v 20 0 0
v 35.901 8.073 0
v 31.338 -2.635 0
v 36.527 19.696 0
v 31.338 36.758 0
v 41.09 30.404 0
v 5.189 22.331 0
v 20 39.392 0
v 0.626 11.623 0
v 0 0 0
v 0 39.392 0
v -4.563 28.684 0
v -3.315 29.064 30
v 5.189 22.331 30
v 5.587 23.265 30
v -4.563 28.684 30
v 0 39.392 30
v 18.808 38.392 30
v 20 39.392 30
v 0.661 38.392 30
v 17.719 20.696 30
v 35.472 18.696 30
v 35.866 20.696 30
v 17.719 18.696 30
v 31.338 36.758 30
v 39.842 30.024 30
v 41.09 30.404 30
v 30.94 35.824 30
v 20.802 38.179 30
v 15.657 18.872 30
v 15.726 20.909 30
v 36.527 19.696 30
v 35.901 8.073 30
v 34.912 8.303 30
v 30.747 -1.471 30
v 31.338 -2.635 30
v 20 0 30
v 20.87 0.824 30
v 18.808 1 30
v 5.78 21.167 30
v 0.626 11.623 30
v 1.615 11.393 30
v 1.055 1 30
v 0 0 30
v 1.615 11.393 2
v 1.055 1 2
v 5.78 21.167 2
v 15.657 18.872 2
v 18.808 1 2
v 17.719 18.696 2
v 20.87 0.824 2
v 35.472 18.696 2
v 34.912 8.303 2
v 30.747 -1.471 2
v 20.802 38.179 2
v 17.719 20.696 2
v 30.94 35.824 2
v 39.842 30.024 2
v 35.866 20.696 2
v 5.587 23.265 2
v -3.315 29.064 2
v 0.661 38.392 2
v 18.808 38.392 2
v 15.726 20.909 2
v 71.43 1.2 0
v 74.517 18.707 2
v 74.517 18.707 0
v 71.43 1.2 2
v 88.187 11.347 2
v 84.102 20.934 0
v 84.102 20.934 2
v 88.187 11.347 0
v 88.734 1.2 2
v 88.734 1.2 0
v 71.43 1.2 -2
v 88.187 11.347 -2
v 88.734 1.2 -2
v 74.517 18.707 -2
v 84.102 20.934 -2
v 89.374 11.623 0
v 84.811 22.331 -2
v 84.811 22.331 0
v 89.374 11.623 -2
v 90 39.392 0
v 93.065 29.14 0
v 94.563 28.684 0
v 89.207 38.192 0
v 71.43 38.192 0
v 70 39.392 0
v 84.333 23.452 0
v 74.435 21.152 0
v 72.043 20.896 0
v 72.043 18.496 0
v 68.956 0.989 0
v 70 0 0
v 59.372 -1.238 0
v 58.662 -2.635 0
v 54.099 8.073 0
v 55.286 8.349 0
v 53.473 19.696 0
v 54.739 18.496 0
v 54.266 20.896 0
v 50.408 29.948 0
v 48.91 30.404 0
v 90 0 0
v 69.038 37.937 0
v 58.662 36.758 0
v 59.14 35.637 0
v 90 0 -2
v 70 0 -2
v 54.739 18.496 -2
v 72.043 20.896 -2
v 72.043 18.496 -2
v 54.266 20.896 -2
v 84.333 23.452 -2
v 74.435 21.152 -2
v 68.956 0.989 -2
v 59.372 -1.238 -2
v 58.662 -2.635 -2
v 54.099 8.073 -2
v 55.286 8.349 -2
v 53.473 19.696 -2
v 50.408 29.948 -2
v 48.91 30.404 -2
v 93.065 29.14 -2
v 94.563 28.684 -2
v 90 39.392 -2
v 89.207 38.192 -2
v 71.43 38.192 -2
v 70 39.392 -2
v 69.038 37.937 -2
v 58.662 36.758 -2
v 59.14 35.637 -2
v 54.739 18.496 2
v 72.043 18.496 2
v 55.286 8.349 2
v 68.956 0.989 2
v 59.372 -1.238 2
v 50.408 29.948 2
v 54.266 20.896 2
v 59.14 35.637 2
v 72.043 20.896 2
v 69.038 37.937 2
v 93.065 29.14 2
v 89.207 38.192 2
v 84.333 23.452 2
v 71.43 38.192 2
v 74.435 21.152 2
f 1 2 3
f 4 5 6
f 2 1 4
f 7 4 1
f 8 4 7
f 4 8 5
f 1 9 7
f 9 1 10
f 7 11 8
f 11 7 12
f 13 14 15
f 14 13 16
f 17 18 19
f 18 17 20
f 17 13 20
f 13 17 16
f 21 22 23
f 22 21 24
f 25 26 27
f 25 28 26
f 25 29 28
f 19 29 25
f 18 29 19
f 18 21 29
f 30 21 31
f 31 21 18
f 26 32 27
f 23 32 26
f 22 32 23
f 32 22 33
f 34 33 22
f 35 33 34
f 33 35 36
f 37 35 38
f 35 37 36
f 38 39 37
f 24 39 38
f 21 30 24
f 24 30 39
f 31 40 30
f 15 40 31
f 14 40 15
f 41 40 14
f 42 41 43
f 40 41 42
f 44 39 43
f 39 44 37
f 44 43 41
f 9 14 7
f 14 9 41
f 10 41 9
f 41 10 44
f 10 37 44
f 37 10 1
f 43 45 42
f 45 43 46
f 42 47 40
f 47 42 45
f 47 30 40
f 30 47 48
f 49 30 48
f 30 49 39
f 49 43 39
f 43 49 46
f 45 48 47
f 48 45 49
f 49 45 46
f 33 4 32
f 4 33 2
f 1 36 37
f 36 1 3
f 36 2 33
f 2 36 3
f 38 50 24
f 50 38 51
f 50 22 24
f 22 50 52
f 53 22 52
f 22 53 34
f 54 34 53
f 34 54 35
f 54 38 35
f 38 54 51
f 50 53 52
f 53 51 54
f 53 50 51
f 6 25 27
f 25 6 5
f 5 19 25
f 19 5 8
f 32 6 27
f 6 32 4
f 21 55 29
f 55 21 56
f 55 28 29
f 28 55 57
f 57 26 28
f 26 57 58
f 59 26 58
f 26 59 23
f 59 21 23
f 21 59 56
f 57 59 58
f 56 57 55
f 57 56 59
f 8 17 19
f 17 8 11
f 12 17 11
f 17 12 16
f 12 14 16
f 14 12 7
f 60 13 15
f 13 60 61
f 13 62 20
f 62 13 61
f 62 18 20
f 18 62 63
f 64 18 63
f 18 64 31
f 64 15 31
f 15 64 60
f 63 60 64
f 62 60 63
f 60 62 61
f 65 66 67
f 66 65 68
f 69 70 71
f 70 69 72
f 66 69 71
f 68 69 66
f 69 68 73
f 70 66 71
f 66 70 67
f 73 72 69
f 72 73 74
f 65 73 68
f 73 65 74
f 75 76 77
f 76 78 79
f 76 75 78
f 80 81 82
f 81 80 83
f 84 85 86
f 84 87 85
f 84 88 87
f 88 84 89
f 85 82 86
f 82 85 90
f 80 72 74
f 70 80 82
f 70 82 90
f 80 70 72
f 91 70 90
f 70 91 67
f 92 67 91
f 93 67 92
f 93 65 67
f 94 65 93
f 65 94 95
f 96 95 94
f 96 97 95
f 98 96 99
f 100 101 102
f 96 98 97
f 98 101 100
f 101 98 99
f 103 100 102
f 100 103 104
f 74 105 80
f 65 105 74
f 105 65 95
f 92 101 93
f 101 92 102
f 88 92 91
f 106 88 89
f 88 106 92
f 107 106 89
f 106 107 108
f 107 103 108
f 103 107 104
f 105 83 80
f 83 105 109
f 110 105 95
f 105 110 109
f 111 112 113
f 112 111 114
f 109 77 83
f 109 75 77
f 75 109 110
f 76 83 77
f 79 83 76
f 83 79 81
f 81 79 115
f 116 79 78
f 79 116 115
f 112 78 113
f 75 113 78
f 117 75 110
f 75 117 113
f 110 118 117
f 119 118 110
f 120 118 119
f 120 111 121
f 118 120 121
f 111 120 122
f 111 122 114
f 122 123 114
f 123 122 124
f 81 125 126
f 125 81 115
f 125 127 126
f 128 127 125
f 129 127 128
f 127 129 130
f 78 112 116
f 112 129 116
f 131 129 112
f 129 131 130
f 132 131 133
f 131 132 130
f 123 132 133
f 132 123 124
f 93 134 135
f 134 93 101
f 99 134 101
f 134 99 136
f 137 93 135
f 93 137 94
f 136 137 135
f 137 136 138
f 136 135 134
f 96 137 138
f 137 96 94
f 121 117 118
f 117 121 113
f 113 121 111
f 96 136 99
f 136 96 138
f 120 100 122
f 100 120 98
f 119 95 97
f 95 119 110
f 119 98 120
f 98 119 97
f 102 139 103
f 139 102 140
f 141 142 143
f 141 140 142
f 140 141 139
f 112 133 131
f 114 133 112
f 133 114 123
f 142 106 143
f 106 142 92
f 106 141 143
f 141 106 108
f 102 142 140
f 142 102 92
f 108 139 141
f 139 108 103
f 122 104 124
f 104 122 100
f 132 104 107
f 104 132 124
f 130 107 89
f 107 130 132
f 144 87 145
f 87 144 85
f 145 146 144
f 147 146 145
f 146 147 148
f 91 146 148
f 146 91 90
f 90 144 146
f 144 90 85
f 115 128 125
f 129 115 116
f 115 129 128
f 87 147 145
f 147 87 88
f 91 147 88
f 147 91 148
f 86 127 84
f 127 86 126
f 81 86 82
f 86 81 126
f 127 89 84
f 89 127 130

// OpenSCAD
// file: Type6-tiles.scad
use <../lib/tile_fns-v19.scad>


/* Type 6 
   Kershner 1968
   
   a=d=e
   b=c
   B+D=180
   2B=E
   
   parameters : B
   
     B = 1,29 concave, 30-90 convex, 91-141 concave

   solution by trig
   
*/

function Type6(B) =
    let(a=2*sin(B/2)/sqrt(1+4*cos(B/2)*cos(B/2) - 4*cos(B/2)*cos(3*B/2)))
    let(gamma = asin(a*sin(3*B/2)/(2*sin(B/2))))
    let(C= 90 + gamma)    
    [[1,B],[1,C],[a,180-B],[a,2*B],[a,360-2*B-C]];

function Type6_tiles(B,n,m)=
let(peri=Type6(B))
let(tile=peri_to_tile(peri))

let(assembly = [
    [[0,0]],
    [[0,1],[0,1]],
    [[0,1],[1,0]],
    [[0,0],[2,0]]
    ])
let(unit = group_tiles([tile],assembly))

let(dy=tile_offset(unit,[0,0],[3,1]))
let(dx=tile_offset(unit,[0,4],[1,4]))

tesselate_tiles(unit,n,m,dx,dy);
// main file
use <../lib/tile_fns-v19.scad>
use <../pentagonal-tiles/Type6-tiles.scad>

scale=20;
inset=1;
n=1;
m=1;
B=80;
tiles =Type6_tiles(B,n,m);
echo(tiles);
ftiles=scale_tiles(flatten(tiles),scale);

for (i=[0:len(ftiles)-1]) {
    tile = ftiles[i];
    linear_extrude(height=30+i*0)
       difference() {
           fill_tile(tile);
           fill_tile(inset_tile(tile,inset));
       }
    linear_extrude(height=2)
       fill_tile(tile); 
}
translate([90,0,0])
rotate([0,180])
for (i=[0:len(ftiles)-1]) {
    tile = ftiles[i];
    translate([0,0,-2 + 0.0001])
      linear_extrude(height=4)
       fill_tile(inset_tile(tile,inset+0.2));
    linear_extrude(height=2)
       fill_tile(tile); 
}
